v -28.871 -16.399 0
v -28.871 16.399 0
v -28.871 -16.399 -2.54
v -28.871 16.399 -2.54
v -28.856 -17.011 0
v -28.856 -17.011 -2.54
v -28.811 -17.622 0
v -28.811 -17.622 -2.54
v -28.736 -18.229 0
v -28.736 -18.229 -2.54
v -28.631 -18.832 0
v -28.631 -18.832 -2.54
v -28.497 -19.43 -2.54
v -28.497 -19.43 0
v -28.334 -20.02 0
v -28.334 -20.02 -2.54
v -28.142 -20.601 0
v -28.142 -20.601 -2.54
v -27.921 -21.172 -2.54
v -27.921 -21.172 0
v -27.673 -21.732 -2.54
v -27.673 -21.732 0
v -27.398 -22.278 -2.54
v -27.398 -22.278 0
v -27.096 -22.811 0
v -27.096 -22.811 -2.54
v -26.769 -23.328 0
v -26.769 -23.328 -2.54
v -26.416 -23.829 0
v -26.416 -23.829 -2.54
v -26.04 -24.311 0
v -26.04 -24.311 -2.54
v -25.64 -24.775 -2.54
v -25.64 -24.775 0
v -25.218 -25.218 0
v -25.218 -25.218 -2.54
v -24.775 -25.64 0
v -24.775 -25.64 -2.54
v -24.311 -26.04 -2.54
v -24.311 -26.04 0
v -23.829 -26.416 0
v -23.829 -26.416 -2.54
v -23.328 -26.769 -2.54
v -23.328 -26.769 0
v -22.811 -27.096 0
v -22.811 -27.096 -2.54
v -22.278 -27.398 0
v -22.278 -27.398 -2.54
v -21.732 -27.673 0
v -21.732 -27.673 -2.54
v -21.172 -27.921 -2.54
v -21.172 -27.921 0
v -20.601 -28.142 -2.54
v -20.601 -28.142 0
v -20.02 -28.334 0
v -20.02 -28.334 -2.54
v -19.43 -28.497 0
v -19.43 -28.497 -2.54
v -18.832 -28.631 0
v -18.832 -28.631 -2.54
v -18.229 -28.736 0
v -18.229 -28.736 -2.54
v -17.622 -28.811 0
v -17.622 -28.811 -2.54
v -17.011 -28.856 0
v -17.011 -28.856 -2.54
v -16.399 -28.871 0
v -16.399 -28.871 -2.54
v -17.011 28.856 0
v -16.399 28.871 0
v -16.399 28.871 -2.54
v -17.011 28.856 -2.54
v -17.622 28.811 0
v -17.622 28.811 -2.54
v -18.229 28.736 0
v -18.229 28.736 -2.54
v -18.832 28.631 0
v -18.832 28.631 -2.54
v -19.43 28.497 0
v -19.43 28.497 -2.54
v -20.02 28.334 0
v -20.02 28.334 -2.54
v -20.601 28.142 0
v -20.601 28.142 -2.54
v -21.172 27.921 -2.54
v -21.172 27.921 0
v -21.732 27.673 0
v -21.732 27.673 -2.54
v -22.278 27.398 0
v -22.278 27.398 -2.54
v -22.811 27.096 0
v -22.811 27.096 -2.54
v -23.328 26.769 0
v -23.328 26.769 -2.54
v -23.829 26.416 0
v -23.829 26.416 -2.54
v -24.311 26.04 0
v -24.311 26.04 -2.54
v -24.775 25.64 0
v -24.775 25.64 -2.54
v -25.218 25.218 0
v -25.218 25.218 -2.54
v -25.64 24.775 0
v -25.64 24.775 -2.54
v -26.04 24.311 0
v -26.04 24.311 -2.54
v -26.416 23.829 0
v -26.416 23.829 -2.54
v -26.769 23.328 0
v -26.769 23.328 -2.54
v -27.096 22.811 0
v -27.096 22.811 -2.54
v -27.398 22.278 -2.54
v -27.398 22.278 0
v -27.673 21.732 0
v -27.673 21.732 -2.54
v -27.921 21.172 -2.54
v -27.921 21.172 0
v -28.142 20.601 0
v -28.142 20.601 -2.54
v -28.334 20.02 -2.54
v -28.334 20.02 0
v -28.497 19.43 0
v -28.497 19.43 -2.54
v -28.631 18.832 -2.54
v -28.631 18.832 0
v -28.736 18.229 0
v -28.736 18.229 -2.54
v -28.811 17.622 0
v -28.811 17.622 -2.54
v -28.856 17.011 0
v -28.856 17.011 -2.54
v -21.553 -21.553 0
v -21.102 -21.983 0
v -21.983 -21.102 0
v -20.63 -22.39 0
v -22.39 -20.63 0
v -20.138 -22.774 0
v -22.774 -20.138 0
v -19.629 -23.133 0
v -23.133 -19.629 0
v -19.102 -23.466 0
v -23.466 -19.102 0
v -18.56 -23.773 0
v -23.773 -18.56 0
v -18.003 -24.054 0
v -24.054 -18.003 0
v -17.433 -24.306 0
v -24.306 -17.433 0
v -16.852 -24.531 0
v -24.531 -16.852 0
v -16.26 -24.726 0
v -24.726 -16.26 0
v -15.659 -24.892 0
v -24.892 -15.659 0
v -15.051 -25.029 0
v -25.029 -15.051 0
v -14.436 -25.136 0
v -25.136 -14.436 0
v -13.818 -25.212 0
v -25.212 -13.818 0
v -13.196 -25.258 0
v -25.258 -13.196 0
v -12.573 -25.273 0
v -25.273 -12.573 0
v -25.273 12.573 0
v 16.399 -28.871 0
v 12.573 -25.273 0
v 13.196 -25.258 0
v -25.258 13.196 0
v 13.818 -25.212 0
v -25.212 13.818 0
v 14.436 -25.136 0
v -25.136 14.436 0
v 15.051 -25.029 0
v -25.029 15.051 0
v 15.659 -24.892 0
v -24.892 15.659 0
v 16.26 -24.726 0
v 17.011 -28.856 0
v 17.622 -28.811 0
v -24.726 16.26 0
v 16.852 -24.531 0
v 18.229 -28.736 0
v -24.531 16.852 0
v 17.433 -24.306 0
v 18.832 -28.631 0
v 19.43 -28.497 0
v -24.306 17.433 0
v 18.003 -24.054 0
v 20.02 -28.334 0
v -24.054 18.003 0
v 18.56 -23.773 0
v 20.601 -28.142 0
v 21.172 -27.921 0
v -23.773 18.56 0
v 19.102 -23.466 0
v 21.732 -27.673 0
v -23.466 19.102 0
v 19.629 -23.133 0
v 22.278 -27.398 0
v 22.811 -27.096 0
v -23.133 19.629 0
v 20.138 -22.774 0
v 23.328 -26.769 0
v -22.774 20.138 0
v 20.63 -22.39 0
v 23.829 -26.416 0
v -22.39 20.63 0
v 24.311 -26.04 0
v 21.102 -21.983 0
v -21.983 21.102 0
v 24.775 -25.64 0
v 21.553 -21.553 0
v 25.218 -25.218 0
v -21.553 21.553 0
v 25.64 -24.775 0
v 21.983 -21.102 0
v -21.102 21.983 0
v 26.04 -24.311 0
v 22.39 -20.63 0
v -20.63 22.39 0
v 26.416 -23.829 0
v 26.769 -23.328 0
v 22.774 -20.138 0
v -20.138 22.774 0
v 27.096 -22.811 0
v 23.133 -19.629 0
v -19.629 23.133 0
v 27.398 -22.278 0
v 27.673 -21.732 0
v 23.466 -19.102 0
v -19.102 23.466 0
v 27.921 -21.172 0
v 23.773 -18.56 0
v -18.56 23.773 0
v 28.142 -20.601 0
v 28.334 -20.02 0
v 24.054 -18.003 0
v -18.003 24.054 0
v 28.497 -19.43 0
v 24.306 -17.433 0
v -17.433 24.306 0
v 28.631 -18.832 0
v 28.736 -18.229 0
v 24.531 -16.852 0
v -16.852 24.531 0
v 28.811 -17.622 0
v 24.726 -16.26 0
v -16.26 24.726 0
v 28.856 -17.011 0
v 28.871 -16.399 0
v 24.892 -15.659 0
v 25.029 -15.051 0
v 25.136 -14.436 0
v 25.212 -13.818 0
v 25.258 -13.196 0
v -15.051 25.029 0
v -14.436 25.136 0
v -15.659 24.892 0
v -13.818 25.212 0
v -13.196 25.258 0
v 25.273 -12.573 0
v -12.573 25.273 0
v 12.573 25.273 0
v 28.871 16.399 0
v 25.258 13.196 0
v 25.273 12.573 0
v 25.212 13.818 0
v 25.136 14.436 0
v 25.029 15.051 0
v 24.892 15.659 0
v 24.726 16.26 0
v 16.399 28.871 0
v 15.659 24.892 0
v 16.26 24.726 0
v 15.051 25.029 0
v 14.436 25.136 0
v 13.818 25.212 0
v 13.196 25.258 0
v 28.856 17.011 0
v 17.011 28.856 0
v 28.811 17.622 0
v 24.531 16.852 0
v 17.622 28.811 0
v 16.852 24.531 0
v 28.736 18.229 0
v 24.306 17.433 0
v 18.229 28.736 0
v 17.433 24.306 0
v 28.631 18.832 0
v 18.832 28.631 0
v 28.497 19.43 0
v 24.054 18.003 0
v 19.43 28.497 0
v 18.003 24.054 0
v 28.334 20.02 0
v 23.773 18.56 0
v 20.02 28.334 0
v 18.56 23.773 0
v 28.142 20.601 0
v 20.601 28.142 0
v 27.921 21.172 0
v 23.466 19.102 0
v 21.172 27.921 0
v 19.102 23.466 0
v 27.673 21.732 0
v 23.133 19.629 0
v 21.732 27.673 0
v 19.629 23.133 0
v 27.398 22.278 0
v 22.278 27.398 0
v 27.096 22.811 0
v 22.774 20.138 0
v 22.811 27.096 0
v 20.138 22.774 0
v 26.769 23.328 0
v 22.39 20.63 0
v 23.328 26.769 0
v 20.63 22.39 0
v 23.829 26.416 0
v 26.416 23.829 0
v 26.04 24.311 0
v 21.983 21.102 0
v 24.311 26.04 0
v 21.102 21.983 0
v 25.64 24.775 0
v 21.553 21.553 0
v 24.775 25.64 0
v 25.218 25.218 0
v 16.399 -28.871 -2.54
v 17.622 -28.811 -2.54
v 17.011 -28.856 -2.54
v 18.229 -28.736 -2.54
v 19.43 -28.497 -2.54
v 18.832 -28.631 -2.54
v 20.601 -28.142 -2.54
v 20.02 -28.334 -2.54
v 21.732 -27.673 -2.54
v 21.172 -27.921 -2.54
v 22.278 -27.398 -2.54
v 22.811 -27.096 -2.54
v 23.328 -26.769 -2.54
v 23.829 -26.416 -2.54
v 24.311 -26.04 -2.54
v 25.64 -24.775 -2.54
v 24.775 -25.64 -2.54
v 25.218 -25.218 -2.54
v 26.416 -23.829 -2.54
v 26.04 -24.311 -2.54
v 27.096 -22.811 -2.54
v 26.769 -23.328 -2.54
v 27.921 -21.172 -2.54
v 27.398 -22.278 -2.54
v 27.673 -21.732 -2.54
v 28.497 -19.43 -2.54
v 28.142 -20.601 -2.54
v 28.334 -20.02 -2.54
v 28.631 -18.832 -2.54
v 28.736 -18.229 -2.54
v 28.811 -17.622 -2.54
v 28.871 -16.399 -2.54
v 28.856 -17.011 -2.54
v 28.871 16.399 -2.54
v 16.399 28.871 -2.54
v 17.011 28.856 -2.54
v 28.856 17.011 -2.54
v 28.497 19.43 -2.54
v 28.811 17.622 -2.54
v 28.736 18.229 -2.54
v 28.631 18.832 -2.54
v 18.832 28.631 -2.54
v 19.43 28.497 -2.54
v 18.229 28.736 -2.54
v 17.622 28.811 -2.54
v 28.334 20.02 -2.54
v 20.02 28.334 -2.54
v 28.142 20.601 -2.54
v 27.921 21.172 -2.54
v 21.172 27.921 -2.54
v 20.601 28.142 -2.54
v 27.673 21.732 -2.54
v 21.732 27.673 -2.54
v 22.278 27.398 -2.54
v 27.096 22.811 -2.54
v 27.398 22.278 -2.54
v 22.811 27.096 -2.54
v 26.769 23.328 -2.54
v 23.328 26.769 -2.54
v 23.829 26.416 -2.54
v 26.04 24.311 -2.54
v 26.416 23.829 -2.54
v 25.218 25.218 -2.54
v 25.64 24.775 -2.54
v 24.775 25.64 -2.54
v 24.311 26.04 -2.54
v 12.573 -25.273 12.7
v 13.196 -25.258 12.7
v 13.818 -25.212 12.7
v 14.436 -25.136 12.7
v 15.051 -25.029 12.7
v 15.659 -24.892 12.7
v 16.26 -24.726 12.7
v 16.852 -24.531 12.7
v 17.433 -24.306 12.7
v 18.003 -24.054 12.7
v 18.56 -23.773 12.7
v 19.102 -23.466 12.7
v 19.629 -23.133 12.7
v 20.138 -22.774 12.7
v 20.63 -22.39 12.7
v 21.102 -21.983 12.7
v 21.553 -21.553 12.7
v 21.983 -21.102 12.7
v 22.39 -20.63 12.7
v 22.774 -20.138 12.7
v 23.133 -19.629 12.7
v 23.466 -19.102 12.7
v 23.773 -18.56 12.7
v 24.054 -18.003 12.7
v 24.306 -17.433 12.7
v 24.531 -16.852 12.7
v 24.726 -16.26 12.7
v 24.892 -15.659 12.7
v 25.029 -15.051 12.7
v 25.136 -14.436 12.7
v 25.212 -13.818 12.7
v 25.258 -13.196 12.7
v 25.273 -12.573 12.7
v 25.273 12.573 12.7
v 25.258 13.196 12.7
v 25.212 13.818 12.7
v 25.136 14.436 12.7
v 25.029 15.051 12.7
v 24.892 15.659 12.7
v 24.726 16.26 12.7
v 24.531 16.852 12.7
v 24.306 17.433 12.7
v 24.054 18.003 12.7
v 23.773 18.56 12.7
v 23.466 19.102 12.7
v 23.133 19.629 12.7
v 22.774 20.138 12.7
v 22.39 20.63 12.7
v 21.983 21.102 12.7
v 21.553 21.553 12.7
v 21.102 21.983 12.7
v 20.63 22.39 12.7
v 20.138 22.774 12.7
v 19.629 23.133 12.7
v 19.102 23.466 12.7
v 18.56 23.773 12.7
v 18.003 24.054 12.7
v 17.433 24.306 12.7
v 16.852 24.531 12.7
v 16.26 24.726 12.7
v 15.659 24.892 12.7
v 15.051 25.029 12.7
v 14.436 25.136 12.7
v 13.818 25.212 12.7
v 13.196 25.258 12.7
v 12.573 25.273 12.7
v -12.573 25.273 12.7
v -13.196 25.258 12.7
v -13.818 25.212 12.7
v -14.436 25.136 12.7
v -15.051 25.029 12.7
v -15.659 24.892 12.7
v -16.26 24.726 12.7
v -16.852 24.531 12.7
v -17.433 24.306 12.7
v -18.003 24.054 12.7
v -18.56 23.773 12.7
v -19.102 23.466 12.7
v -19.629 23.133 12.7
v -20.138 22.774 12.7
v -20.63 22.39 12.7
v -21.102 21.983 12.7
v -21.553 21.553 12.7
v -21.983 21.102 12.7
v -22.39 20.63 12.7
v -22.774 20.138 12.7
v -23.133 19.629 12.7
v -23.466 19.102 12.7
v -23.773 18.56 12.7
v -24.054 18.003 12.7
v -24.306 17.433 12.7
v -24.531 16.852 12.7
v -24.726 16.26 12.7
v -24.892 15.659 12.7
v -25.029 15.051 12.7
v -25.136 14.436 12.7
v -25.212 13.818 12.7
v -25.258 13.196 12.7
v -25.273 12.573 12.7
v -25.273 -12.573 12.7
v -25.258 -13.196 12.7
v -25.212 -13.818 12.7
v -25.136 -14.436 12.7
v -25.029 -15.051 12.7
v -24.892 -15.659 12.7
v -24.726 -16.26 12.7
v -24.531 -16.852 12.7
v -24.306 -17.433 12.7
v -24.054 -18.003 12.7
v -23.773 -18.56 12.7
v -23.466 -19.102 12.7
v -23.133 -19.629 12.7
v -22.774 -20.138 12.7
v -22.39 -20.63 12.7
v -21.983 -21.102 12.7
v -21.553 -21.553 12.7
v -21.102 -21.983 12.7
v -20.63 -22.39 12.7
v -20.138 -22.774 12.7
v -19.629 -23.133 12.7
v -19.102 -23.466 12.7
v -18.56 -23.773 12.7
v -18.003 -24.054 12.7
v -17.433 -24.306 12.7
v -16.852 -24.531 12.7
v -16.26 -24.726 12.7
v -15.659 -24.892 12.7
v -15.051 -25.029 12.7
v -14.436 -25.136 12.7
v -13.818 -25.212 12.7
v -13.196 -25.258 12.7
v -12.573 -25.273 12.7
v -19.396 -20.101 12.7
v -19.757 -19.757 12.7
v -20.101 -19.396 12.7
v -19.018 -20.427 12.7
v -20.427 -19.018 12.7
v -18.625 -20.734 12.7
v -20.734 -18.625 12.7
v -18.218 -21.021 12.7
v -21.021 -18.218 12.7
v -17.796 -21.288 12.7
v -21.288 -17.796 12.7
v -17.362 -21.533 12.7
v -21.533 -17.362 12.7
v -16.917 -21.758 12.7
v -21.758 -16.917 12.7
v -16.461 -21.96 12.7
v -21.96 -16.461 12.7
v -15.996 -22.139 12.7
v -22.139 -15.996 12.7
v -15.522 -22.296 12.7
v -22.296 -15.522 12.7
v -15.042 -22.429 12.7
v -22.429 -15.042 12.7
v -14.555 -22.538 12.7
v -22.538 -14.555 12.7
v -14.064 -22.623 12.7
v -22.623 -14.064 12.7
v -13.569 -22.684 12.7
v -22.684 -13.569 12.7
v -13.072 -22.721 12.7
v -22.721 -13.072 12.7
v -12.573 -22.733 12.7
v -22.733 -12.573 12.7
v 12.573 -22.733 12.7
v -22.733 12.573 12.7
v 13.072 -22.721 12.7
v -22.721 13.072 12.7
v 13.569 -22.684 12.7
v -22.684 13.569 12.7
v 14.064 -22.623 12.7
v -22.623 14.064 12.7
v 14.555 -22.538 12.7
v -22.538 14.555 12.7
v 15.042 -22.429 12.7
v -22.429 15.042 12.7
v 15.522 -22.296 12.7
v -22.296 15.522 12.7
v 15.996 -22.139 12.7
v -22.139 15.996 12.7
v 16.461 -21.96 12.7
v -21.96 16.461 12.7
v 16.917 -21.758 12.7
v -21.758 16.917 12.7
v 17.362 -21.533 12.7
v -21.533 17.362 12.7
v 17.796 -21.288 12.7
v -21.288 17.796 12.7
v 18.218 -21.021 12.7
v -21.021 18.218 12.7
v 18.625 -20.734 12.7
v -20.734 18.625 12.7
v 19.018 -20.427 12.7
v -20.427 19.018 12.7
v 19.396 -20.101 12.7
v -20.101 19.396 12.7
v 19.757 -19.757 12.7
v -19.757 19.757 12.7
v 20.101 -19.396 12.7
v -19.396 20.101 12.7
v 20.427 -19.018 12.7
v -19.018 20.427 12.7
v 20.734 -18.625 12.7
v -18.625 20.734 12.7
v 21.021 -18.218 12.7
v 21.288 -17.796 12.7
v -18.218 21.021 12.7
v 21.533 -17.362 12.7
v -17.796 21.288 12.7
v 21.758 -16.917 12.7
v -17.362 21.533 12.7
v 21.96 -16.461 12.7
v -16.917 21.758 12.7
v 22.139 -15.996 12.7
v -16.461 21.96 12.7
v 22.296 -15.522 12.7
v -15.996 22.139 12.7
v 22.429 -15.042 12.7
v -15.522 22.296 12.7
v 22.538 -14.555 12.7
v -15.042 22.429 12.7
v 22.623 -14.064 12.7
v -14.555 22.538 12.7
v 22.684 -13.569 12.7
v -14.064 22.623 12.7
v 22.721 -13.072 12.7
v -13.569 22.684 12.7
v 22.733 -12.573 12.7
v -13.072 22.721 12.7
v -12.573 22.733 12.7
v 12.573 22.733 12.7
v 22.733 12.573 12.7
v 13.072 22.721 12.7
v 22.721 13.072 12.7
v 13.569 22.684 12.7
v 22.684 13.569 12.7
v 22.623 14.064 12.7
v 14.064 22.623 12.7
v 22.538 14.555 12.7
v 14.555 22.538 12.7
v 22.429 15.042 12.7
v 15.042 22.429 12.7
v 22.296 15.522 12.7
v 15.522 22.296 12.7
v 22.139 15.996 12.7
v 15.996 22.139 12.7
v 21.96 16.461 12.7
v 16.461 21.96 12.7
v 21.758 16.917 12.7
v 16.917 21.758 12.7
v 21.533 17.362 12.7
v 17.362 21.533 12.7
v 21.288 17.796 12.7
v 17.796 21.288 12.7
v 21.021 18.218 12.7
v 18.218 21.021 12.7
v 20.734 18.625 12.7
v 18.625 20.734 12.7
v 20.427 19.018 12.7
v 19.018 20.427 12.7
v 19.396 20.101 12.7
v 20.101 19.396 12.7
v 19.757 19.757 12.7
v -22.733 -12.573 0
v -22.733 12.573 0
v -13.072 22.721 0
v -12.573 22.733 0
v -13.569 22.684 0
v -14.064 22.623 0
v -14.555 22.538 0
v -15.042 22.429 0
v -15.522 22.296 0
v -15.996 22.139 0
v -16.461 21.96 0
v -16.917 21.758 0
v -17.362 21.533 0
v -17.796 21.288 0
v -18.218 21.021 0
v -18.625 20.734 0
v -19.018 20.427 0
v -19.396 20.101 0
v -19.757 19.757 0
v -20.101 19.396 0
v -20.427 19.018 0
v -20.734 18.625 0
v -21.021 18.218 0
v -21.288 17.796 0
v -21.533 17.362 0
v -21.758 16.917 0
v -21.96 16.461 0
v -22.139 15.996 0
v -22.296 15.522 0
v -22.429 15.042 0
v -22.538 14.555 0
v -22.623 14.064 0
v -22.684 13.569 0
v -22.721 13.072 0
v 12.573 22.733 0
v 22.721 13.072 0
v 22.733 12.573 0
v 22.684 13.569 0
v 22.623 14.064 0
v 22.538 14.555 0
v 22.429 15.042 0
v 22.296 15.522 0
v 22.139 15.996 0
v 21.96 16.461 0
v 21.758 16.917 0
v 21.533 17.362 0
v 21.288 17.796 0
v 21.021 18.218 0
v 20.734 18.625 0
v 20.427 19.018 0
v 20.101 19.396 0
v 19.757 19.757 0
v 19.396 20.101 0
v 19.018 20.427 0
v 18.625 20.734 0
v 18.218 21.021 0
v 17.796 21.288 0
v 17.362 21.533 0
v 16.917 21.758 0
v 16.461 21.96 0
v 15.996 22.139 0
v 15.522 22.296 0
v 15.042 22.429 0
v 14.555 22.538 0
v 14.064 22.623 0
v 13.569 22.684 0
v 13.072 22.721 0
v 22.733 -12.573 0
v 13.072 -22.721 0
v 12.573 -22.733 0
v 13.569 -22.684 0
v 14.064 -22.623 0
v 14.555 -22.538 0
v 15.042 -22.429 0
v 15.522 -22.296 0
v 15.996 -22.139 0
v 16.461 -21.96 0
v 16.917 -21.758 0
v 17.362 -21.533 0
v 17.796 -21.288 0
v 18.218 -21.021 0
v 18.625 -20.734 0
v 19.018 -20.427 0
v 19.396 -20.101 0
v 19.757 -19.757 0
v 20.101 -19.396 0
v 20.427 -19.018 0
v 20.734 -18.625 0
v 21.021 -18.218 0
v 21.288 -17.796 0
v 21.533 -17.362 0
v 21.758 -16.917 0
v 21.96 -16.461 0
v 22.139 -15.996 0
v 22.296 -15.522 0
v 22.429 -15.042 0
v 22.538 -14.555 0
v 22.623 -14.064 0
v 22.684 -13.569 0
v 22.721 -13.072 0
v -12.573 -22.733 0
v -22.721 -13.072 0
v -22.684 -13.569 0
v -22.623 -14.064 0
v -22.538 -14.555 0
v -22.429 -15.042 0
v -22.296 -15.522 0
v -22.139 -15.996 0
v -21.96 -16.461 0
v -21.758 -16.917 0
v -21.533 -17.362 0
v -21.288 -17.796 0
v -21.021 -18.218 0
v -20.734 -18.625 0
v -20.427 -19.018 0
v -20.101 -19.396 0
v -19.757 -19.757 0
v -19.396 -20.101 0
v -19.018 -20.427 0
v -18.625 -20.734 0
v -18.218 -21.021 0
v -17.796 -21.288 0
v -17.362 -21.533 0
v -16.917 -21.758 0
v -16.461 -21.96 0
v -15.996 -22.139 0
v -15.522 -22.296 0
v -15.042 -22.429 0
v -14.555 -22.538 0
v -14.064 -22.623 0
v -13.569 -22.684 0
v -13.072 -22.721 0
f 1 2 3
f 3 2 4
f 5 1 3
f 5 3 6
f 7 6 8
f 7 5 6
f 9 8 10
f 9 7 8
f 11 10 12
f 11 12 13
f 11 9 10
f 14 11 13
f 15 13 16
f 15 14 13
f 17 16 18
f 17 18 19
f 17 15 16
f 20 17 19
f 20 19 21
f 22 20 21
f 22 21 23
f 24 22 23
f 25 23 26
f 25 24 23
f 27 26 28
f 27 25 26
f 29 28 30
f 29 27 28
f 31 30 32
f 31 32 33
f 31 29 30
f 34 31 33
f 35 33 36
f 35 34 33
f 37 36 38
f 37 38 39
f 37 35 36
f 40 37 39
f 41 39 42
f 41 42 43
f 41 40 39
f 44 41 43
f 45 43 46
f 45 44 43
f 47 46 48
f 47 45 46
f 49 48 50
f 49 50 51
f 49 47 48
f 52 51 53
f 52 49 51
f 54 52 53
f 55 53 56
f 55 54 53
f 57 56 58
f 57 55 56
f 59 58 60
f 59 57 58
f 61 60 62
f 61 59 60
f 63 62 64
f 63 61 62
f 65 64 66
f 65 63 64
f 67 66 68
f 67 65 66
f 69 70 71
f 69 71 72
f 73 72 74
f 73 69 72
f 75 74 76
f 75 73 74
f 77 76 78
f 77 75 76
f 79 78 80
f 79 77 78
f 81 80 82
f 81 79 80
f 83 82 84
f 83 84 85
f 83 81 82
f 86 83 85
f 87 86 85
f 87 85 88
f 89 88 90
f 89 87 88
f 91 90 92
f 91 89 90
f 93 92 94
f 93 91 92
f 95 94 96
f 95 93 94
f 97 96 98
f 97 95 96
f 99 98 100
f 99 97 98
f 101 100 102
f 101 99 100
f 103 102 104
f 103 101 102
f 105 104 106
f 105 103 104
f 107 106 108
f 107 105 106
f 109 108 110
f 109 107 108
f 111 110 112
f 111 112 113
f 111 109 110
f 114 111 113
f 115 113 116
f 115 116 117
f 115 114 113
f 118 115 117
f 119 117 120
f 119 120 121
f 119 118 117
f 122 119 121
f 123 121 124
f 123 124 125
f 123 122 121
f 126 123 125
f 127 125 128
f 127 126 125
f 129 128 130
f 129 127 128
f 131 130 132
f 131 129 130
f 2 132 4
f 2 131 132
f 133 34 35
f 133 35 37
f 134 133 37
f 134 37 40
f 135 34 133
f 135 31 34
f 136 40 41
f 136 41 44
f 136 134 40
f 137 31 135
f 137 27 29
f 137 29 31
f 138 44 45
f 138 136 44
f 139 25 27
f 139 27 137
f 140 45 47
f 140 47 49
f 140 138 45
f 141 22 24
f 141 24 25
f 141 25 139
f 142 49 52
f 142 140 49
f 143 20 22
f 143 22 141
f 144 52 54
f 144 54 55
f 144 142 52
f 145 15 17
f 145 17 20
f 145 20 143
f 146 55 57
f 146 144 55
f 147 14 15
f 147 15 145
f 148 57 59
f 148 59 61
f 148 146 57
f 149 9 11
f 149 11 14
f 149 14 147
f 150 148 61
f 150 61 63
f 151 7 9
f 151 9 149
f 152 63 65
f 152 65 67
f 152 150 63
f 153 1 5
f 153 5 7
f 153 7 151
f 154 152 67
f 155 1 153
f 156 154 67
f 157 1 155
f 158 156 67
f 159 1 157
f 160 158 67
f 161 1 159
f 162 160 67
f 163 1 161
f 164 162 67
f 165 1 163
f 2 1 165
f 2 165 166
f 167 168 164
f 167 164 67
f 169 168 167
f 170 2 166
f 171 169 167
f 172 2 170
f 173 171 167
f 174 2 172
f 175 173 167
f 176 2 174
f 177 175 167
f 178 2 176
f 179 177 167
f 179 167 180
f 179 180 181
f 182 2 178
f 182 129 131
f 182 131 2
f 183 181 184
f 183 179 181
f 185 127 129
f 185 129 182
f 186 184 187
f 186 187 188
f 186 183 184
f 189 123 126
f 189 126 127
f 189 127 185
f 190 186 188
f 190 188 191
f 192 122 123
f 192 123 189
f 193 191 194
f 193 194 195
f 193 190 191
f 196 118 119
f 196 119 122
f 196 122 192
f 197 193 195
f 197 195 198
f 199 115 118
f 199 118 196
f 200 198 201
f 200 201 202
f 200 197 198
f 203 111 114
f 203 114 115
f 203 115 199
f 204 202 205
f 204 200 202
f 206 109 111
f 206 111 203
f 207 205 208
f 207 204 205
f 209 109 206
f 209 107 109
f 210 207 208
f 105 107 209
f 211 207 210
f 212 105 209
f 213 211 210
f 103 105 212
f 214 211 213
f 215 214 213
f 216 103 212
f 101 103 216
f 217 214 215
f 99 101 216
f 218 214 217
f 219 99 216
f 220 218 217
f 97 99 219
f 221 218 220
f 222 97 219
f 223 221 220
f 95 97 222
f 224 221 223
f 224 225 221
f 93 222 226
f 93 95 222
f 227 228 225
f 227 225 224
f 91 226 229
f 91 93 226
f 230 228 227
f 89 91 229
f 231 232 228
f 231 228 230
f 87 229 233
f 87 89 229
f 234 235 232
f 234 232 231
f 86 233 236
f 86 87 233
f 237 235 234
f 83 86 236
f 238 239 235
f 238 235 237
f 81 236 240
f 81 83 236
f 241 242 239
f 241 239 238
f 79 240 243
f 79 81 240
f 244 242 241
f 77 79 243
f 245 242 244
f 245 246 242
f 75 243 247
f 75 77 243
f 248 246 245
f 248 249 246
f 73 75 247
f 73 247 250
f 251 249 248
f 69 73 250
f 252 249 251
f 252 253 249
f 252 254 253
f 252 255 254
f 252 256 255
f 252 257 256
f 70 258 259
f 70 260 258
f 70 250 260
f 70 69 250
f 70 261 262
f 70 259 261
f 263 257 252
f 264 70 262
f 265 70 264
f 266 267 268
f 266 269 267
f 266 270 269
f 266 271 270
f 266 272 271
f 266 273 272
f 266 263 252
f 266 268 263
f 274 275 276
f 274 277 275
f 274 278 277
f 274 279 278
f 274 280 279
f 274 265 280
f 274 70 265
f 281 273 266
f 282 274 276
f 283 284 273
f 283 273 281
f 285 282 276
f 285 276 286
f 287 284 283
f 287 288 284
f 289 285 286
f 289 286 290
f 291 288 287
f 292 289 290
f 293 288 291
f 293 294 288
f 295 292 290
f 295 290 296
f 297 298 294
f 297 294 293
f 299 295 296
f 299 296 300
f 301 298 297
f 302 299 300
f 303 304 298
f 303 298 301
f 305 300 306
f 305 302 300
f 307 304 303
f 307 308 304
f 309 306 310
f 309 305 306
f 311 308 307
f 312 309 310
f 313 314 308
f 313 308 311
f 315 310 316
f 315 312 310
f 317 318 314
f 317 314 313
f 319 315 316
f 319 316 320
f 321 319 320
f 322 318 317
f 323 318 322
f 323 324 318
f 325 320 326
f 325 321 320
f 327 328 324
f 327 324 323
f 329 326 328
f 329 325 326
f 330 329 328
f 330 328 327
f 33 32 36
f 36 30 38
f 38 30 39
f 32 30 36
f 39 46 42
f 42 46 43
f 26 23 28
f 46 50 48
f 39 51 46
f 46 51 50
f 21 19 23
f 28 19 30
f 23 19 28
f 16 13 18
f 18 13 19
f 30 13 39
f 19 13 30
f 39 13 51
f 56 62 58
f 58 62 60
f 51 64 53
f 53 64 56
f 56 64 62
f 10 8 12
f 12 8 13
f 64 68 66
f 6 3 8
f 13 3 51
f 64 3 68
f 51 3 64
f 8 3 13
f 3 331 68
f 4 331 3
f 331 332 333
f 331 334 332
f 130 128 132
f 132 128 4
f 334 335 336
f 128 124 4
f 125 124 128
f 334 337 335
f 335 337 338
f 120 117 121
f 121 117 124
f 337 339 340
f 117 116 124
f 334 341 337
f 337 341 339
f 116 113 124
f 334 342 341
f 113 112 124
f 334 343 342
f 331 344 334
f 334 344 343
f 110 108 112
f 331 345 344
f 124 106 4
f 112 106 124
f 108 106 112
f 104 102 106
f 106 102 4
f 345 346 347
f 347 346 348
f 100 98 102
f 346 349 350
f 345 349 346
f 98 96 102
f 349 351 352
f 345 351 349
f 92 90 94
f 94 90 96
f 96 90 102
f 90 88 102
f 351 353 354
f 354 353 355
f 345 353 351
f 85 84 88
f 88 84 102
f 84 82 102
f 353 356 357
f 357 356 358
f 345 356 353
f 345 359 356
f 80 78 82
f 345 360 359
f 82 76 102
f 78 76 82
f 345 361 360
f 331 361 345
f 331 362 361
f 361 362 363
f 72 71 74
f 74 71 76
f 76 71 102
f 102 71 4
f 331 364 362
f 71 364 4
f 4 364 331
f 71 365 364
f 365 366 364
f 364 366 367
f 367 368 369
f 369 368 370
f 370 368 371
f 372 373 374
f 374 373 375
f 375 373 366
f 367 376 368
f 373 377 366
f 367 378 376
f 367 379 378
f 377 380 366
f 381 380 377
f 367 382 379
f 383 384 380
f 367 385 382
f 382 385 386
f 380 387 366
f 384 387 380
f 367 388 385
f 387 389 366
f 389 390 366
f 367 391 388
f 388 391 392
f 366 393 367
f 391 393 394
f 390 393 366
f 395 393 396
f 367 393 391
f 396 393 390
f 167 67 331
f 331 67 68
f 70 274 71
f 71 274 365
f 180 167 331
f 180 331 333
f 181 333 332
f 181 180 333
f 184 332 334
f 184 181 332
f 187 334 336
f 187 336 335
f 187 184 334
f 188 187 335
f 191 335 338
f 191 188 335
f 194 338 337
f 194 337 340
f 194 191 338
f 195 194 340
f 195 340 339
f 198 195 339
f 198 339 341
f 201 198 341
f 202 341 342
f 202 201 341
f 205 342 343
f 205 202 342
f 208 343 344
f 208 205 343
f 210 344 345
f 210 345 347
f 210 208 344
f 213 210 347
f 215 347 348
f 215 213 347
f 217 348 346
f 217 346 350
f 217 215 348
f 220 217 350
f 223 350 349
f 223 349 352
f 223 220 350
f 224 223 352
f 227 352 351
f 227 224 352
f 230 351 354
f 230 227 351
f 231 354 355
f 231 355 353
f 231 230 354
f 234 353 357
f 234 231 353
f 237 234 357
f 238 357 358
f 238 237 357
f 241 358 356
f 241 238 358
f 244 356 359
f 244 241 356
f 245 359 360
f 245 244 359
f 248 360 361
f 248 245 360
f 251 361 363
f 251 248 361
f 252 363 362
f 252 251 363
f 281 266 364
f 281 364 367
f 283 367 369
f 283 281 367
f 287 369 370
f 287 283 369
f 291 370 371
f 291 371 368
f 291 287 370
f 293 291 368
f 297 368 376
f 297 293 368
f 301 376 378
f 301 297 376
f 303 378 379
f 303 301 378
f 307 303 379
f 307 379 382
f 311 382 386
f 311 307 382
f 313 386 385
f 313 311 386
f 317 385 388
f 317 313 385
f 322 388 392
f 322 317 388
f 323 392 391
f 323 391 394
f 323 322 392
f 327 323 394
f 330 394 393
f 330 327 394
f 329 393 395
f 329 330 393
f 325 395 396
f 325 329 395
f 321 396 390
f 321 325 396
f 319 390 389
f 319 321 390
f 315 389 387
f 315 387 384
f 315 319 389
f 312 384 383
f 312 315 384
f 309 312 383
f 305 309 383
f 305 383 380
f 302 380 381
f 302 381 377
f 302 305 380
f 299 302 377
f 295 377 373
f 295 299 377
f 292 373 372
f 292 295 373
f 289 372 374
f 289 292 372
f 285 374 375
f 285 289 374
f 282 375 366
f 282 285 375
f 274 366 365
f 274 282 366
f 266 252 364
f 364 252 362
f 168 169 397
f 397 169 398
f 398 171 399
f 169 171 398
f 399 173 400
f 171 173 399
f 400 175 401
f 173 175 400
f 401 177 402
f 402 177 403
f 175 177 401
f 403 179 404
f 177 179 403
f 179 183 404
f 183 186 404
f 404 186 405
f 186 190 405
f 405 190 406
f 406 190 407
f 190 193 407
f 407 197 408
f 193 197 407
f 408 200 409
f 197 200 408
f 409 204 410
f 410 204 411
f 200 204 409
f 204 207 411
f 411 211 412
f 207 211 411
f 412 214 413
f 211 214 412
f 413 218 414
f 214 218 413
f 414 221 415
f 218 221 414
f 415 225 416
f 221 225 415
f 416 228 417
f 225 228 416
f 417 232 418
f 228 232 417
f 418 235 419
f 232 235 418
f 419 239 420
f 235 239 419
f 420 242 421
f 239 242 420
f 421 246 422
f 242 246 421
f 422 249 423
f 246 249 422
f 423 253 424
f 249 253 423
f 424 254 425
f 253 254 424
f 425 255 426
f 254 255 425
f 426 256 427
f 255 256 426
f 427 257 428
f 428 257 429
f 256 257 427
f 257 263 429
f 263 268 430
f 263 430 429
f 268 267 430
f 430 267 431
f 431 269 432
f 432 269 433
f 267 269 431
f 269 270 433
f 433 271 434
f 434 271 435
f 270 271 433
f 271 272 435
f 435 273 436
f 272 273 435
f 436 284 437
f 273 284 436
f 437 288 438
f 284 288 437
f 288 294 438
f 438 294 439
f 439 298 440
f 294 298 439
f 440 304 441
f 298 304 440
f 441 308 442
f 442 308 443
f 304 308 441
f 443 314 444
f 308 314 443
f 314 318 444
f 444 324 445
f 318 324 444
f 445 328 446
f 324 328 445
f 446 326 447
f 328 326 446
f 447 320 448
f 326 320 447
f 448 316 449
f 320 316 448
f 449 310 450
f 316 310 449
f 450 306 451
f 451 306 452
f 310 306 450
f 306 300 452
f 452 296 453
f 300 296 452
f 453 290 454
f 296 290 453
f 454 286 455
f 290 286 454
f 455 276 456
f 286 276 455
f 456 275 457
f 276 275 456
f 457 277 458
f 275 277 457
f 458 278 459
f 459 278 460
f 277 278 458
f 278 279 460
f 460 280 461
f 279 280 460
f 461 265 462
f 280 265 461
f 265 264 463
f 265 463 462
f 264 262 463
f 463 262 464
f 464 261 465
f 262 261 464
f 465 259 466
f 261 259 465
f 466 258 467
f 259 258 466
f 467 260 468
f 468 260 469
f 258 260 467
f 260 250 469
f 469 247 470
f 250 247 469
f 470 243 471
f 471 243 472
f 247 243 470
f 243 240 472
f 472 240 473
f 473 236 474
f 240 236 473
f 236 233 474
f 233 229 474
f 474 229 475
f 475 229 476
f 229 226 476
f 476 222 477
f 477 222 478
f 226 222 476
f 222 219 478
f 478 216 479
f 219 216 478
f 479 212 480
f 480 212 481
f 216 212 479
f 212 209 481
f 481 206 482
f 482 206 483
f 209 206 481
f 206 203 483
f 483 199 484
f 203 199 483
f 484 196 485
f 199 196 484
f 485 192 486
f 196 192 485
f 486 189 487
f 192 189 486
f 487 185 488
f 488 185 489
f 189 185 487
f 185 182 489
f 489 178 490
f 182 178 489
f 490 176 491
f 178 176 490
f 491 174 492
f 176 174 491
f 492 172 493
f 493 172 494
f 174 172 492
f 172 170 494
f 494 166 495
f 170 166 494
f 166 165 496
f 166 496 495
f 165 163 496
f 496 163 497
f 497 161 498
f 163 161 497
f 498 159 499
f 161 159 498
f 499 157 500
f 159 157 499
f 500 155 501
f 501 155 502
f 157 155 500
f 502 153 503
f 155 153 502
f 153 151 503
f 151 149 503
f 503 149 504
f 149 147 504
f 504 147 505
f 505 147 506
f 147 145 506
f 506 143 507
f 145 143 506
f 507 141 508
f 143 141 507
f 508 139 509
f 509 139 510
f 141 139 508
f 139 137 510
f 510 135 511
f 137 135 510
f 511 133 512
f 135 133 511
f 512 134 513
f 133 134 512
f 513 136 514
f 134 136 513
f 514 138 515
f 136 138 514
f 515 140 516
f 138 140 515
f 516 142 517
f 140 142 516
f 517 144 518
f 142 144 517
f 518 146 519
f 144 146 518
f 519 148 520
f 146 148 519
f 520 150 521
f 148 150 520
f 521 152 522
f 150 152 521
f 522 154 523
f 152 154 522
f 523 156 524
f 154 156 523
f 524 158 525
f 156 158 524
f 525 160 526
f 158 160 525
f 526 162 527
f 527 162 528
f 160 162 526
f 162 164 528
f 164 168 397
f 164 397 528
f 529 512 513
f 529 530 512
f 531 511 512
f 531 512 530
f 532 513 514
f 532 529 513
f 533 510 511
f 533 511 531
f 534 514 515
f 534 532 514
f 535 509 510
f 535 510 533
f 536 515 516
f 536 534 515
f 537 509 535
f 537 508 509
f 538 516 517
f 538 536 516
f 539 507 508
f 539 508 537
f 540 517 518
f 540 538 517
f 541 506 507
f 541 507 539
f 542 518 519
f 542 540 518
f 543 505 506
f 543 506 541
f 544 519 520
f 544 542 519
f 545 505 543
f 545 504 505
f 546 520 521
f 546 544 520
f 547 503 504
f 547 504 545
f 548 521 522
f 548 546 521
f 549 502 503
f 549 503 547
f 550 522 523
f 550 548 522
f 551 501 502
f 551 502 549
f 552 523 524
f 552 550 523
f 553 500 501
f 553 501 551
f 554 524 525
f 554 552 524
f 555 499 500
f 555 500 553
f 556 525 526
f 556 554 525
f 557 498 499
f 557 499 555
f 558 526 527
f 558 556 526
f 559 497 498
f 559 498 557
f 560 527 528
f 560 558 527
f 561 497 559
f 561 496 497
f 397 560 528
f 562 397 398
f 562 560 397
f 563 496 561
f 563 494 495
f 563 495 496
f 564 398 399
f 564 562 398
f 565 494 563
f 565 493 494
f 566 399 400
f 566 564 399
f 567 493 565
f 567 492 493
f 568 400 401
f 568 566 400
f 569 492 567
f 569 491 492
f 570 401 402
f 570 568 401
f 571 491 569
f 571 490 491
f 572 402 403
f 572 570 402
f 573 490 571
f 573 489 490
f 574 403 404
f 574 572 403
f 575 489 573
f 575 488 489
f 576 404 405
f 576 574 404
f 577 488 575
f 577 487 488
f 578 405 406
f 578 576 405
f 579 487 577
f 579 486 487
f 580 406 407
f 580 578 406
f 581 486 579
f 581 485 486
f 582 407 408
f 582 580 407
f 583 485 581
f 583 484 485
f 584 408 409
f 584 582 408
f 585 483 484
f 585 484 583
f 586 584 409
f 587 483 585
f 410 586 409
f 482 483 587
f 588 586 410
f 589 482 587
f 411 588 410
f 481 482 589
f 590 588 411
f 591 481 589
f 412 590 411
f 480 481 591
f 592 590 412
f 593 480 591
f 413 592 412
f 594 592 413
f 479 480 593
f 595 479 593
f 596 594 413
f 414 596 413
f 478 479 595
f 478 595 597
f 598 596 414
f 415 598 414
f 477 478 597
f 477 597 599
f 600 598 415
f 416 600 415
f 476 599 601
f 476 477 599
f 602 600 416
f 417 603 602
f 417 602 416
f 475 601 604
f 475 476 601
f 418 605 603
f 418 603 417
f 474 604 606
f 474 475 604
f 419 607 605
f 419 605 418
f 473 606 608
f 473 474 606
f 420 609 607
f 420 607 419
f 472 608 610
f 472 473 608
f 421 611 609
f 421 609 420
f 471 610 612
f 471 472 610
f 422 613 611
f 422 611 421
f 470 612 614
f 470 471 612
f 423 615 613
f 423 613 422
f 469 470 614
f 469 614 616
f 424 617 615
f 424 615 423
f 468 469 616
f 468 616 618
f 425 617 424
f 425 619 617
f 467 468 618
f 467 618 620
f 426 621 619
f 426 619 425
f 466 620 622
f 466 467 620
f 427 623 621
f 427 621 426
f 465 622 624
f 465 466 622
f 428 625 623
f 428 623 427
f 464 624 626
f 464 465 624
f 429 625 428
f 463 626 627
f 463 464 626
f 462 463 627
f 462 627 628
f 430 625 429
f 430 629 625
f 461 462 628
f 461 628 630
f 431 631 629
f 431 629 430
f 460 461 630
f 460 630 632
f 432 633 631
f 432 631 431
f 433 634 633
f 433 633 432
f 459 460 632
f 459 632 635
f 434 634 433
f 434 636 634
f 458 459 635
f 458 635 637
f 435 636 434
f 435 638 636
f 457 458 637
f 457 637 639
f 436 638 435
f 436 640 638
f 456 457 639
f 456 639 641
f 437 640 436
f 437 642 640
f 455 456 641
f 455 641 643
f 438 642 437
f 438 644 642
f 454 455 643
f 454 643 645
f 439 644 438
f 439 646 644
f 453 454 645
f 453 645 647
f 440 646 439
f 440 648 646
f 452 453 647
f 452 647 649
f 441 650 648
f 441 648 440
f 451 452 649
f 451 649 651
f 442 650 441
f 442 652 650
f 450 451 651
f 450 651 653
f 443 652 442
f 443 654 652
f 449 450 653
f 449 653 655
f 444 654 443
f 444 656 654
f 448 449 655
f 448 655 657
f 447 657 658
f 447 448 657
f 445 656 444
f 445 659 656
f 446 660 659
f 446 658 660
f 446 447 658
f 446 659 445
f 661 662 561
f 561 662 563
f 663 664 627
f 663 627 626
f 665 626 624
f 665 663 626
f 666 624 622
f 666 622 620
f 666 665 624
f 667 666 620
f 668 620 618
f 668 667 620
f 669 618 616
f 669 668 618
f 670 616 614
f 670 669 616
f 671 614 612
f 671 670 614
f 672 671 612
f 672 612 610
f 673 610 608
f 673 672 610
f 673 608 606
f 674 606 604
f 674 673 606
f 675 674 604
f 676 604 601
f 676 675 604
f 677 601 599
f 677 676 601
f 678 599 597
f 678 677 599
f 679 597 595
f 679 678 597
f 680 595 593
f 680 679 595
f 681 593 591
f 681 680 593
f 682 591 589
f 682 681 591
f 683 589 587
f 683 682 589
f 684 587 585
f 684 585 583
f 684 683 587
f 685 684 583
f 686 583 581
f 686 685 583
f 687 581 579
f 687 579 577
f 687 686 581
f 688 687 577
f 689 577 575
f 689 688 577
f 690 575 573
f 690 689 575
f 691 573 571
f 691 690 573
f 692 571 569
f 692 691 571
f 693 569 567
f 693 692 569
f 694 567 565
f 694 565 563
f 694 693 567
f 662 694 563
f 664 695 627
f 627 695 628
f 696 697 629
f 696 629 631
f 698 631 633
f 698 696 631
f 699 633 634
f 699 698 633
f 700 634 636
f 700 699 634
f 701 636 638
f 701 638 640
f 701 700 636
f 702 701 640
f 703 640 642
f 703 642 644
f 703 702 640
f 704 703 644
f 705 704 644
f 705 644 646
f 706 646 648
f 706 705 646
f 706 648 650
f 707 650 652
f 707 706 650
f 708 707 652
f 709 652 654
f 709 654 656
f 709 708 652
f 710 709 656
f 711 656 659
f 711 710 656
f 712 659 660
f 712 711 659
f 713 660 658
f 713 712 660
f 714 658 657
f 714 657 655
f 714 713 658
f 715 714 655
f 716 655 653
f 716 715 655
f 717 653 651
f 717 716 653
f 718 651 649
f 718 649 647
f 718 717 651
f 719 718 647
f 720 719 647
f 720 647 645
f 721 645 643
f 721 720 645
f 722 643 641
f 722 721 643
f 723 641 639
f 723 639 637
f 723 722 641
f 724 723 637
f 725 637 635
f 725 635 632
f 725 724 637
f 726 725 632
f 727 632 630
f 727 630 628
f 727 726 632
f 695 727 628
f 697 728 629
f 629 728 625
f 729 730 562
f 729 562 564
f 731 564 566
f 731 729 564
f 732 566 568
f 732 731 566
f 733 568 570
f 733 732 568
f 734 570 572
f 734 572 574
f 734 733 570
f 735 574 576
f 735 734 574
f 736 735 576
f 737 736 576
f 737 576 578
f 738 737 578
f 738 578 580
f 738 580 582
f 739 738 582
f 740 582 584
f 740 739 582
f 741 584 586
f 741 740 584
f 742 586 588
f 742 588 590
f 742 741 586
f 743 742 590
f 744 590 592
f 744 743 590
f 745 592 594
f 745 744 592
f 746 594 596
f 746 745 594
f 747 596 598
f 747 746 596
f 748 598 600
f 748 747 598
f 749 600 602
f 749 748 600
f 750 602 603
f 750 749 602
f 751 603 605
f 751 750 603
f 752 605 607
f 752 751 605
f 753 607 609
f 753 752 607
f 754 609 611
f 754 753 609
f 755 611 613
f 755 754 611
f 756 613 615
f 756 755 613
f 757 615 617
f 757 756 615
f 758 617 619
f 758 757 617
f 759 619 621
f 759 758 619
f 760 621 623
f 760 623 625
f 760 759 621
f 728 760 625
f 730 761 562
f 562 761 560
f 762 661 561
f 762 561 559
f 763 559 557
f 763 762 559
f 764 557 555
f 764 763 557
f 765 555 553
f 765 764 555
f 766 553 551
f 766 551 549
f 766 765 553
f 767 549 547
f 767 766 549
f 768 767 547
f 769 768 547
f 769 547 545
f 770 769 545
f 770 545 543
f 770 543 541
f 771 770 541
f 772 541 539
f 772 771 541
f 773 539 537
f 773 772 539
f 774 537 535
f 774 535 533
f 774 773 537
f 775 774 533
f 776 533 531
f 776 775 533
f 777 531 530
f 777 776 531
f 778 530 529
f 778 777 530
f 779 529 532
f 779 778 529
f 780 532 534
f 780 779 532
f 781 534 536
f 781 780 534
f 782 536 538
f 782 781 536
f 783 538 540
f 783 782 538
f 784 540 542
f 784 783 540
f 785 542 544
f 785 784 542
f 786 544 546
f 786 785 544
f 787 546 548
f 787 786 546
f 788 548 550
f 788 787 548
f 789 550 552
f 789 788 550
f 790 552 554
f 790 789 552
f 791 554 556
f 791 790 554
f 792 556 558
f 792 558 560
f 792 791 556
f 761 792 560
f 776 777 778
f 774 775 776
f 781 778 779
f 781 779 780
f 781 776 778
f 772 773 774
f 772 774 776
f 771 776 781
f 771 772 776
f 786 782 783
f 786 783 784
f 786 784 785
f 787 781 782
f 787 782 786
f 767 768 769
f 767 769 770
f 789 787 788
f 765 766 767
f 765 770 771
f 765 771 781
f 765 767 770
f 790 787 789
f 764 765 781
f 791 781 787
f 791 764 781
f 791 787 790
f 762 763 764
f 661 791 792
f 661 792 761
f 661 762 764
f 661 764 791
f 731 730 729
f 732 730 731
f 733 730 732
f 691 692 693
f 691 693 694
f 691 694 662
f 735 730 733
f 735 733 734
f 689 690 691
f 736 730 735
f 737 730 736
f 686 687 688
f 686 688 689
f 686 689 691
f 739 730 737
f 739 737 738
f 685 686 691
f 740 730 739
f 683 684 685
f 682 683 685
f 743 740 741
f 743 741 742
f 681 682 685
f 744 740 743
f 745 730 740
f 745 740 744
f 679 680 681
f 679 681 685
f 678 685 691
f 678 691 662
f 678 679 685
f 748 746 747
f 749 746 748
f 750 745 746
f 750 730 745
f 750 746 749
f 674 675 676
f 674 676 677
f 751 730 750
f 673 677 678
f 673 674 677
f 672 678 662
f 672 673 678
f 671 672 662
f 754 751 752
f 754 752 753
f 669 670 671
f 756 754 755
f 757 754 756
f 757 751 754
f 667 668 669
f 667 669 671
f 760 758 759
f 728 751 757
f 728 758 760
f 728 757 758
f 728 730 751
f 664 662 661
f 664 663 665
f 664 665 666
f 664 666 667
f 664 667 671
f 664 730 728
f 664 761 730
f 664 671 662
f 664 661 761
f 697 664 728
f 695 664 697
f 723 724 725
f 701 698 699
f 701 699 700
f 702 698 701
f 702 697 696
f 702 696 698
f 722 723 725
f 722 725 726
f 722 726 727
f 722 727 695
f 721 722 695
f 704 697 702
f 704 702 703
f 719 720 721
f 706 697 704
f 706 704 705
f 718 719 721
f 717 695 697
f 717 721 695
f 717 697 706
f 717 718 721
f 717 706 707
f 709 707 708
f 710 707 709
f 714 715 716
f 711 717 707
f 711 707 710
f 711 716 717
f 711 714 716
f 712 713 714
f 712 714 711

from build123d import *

# Parameters (mm, degrees)
PAD_DEPTH    = 12.7
PAD001_DEPTH = 2.54


with BuildPart() as part:
    # Sketch → Pad (new body)
    with BuildSketch(Plane.XY):
        with BuildLine():
            Line((-25.273, -12.573), (-25.273, 12.573))
            ThreePointArc((-12.573, 25.273), (-21.553256, 21.553256), (-25.273, 12.573))
            Line((-12.573, 25.273), (12.573, 25.273))
            ThreePointArc((25.273, 12.573), (21.553256, 21.553256), (12.573, 25.273))
            Line((25.273, 12.573), (25.273, -12.573))
            ThreePointArc((12.573, -25.273), (21.553256, -21.553256), (25.273, -12.573))
            Line((12.573, -25.273), (-12.573, -25.273))
            ThreePointArc((-25.273, -12.573), (-21.553256, -21.553256), (-12.573, -25.273))
        make_face()
        with BuildLine():
            Line((-22.733, -12.573), (-22.733, 12.573))
            ThreePointArc((-12.573, 22.733), (-19.757205, 19.757205), (-22.733, 12.573))
            Line((-12.573, 22.733), (12.573, 22.733))
            ThreePointArc((22.733, 12.573), (19.757205, 19.757205), (12.573, 22.733))
            Line((22.733, 12.573), (22.733, -12.573))
            ThreePointArc((12.573, -22.733), (19.757205, -19.757205), (22.733, -12.573))
            Line((12.573, -22.733), (-12.573, -22.733))
            ThreePointArc((-22.733, -12.573), (-19.757205, -19.757205), (-12.573, -22.733))
        make_face(mode=Mode.SUBTRACT)
    extrude(amount=PAD_DEPTH)

    # Sketch001 → Pad001 (join)
    with BuildSketch(Plane.XY):
        with BuildLine():
            Line((-28.870723, -16.399415), (-28.870723, 16.399415))
            ThreePointArc((-16.399415, 28.870723), (-25.217961, 25.217961), (-28.870723, 16.399415))
            Line((-16.399415, 28.870723), (16.399415, 28.870723))
            ThreePointArc((28.870723, 16.399415), (25.217961, 25.217961), (16.399415, 28.870723))
            Line((28.870723, 16.399415), (28.870723, -16.399415))
            ThreePointArc((16.399415, -28.870723), (25.217961, -25.217961), (28.870723, -16.399415))
            Line((16.399415, -28.870723), (-16.399415, -28.870723))
            ThreePointArc((-28.870723, -16.399415), (-25.217961, -25.217961), (-16.399415, -28.870723))
        make_face()
    extrude(amount=-PAD001_DEPTH)


solid = part.part
